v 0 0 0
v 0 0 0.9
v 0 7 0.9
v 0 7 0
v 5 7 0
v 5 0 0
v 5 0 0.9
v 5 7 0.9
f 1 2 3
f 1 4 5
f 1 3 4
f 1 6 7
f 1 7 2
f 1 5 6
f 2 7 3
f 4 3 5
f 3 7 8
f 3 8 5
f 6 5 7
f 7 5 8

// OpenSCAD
/* Warning, this is a very basic generator with a lot of approximation 
input data : [VQFN, SKB, 5x7x0.9mm, 38, , B, C04-21412B]
generated by com.zoubworld.electronics.cad.model3d.Basic
Date : Sun Feb 15 10:50:49 CET 2026
*/

//body
color("black")
translate([0,0,0])
cube([5.0,7.0,0.9], center=false);
